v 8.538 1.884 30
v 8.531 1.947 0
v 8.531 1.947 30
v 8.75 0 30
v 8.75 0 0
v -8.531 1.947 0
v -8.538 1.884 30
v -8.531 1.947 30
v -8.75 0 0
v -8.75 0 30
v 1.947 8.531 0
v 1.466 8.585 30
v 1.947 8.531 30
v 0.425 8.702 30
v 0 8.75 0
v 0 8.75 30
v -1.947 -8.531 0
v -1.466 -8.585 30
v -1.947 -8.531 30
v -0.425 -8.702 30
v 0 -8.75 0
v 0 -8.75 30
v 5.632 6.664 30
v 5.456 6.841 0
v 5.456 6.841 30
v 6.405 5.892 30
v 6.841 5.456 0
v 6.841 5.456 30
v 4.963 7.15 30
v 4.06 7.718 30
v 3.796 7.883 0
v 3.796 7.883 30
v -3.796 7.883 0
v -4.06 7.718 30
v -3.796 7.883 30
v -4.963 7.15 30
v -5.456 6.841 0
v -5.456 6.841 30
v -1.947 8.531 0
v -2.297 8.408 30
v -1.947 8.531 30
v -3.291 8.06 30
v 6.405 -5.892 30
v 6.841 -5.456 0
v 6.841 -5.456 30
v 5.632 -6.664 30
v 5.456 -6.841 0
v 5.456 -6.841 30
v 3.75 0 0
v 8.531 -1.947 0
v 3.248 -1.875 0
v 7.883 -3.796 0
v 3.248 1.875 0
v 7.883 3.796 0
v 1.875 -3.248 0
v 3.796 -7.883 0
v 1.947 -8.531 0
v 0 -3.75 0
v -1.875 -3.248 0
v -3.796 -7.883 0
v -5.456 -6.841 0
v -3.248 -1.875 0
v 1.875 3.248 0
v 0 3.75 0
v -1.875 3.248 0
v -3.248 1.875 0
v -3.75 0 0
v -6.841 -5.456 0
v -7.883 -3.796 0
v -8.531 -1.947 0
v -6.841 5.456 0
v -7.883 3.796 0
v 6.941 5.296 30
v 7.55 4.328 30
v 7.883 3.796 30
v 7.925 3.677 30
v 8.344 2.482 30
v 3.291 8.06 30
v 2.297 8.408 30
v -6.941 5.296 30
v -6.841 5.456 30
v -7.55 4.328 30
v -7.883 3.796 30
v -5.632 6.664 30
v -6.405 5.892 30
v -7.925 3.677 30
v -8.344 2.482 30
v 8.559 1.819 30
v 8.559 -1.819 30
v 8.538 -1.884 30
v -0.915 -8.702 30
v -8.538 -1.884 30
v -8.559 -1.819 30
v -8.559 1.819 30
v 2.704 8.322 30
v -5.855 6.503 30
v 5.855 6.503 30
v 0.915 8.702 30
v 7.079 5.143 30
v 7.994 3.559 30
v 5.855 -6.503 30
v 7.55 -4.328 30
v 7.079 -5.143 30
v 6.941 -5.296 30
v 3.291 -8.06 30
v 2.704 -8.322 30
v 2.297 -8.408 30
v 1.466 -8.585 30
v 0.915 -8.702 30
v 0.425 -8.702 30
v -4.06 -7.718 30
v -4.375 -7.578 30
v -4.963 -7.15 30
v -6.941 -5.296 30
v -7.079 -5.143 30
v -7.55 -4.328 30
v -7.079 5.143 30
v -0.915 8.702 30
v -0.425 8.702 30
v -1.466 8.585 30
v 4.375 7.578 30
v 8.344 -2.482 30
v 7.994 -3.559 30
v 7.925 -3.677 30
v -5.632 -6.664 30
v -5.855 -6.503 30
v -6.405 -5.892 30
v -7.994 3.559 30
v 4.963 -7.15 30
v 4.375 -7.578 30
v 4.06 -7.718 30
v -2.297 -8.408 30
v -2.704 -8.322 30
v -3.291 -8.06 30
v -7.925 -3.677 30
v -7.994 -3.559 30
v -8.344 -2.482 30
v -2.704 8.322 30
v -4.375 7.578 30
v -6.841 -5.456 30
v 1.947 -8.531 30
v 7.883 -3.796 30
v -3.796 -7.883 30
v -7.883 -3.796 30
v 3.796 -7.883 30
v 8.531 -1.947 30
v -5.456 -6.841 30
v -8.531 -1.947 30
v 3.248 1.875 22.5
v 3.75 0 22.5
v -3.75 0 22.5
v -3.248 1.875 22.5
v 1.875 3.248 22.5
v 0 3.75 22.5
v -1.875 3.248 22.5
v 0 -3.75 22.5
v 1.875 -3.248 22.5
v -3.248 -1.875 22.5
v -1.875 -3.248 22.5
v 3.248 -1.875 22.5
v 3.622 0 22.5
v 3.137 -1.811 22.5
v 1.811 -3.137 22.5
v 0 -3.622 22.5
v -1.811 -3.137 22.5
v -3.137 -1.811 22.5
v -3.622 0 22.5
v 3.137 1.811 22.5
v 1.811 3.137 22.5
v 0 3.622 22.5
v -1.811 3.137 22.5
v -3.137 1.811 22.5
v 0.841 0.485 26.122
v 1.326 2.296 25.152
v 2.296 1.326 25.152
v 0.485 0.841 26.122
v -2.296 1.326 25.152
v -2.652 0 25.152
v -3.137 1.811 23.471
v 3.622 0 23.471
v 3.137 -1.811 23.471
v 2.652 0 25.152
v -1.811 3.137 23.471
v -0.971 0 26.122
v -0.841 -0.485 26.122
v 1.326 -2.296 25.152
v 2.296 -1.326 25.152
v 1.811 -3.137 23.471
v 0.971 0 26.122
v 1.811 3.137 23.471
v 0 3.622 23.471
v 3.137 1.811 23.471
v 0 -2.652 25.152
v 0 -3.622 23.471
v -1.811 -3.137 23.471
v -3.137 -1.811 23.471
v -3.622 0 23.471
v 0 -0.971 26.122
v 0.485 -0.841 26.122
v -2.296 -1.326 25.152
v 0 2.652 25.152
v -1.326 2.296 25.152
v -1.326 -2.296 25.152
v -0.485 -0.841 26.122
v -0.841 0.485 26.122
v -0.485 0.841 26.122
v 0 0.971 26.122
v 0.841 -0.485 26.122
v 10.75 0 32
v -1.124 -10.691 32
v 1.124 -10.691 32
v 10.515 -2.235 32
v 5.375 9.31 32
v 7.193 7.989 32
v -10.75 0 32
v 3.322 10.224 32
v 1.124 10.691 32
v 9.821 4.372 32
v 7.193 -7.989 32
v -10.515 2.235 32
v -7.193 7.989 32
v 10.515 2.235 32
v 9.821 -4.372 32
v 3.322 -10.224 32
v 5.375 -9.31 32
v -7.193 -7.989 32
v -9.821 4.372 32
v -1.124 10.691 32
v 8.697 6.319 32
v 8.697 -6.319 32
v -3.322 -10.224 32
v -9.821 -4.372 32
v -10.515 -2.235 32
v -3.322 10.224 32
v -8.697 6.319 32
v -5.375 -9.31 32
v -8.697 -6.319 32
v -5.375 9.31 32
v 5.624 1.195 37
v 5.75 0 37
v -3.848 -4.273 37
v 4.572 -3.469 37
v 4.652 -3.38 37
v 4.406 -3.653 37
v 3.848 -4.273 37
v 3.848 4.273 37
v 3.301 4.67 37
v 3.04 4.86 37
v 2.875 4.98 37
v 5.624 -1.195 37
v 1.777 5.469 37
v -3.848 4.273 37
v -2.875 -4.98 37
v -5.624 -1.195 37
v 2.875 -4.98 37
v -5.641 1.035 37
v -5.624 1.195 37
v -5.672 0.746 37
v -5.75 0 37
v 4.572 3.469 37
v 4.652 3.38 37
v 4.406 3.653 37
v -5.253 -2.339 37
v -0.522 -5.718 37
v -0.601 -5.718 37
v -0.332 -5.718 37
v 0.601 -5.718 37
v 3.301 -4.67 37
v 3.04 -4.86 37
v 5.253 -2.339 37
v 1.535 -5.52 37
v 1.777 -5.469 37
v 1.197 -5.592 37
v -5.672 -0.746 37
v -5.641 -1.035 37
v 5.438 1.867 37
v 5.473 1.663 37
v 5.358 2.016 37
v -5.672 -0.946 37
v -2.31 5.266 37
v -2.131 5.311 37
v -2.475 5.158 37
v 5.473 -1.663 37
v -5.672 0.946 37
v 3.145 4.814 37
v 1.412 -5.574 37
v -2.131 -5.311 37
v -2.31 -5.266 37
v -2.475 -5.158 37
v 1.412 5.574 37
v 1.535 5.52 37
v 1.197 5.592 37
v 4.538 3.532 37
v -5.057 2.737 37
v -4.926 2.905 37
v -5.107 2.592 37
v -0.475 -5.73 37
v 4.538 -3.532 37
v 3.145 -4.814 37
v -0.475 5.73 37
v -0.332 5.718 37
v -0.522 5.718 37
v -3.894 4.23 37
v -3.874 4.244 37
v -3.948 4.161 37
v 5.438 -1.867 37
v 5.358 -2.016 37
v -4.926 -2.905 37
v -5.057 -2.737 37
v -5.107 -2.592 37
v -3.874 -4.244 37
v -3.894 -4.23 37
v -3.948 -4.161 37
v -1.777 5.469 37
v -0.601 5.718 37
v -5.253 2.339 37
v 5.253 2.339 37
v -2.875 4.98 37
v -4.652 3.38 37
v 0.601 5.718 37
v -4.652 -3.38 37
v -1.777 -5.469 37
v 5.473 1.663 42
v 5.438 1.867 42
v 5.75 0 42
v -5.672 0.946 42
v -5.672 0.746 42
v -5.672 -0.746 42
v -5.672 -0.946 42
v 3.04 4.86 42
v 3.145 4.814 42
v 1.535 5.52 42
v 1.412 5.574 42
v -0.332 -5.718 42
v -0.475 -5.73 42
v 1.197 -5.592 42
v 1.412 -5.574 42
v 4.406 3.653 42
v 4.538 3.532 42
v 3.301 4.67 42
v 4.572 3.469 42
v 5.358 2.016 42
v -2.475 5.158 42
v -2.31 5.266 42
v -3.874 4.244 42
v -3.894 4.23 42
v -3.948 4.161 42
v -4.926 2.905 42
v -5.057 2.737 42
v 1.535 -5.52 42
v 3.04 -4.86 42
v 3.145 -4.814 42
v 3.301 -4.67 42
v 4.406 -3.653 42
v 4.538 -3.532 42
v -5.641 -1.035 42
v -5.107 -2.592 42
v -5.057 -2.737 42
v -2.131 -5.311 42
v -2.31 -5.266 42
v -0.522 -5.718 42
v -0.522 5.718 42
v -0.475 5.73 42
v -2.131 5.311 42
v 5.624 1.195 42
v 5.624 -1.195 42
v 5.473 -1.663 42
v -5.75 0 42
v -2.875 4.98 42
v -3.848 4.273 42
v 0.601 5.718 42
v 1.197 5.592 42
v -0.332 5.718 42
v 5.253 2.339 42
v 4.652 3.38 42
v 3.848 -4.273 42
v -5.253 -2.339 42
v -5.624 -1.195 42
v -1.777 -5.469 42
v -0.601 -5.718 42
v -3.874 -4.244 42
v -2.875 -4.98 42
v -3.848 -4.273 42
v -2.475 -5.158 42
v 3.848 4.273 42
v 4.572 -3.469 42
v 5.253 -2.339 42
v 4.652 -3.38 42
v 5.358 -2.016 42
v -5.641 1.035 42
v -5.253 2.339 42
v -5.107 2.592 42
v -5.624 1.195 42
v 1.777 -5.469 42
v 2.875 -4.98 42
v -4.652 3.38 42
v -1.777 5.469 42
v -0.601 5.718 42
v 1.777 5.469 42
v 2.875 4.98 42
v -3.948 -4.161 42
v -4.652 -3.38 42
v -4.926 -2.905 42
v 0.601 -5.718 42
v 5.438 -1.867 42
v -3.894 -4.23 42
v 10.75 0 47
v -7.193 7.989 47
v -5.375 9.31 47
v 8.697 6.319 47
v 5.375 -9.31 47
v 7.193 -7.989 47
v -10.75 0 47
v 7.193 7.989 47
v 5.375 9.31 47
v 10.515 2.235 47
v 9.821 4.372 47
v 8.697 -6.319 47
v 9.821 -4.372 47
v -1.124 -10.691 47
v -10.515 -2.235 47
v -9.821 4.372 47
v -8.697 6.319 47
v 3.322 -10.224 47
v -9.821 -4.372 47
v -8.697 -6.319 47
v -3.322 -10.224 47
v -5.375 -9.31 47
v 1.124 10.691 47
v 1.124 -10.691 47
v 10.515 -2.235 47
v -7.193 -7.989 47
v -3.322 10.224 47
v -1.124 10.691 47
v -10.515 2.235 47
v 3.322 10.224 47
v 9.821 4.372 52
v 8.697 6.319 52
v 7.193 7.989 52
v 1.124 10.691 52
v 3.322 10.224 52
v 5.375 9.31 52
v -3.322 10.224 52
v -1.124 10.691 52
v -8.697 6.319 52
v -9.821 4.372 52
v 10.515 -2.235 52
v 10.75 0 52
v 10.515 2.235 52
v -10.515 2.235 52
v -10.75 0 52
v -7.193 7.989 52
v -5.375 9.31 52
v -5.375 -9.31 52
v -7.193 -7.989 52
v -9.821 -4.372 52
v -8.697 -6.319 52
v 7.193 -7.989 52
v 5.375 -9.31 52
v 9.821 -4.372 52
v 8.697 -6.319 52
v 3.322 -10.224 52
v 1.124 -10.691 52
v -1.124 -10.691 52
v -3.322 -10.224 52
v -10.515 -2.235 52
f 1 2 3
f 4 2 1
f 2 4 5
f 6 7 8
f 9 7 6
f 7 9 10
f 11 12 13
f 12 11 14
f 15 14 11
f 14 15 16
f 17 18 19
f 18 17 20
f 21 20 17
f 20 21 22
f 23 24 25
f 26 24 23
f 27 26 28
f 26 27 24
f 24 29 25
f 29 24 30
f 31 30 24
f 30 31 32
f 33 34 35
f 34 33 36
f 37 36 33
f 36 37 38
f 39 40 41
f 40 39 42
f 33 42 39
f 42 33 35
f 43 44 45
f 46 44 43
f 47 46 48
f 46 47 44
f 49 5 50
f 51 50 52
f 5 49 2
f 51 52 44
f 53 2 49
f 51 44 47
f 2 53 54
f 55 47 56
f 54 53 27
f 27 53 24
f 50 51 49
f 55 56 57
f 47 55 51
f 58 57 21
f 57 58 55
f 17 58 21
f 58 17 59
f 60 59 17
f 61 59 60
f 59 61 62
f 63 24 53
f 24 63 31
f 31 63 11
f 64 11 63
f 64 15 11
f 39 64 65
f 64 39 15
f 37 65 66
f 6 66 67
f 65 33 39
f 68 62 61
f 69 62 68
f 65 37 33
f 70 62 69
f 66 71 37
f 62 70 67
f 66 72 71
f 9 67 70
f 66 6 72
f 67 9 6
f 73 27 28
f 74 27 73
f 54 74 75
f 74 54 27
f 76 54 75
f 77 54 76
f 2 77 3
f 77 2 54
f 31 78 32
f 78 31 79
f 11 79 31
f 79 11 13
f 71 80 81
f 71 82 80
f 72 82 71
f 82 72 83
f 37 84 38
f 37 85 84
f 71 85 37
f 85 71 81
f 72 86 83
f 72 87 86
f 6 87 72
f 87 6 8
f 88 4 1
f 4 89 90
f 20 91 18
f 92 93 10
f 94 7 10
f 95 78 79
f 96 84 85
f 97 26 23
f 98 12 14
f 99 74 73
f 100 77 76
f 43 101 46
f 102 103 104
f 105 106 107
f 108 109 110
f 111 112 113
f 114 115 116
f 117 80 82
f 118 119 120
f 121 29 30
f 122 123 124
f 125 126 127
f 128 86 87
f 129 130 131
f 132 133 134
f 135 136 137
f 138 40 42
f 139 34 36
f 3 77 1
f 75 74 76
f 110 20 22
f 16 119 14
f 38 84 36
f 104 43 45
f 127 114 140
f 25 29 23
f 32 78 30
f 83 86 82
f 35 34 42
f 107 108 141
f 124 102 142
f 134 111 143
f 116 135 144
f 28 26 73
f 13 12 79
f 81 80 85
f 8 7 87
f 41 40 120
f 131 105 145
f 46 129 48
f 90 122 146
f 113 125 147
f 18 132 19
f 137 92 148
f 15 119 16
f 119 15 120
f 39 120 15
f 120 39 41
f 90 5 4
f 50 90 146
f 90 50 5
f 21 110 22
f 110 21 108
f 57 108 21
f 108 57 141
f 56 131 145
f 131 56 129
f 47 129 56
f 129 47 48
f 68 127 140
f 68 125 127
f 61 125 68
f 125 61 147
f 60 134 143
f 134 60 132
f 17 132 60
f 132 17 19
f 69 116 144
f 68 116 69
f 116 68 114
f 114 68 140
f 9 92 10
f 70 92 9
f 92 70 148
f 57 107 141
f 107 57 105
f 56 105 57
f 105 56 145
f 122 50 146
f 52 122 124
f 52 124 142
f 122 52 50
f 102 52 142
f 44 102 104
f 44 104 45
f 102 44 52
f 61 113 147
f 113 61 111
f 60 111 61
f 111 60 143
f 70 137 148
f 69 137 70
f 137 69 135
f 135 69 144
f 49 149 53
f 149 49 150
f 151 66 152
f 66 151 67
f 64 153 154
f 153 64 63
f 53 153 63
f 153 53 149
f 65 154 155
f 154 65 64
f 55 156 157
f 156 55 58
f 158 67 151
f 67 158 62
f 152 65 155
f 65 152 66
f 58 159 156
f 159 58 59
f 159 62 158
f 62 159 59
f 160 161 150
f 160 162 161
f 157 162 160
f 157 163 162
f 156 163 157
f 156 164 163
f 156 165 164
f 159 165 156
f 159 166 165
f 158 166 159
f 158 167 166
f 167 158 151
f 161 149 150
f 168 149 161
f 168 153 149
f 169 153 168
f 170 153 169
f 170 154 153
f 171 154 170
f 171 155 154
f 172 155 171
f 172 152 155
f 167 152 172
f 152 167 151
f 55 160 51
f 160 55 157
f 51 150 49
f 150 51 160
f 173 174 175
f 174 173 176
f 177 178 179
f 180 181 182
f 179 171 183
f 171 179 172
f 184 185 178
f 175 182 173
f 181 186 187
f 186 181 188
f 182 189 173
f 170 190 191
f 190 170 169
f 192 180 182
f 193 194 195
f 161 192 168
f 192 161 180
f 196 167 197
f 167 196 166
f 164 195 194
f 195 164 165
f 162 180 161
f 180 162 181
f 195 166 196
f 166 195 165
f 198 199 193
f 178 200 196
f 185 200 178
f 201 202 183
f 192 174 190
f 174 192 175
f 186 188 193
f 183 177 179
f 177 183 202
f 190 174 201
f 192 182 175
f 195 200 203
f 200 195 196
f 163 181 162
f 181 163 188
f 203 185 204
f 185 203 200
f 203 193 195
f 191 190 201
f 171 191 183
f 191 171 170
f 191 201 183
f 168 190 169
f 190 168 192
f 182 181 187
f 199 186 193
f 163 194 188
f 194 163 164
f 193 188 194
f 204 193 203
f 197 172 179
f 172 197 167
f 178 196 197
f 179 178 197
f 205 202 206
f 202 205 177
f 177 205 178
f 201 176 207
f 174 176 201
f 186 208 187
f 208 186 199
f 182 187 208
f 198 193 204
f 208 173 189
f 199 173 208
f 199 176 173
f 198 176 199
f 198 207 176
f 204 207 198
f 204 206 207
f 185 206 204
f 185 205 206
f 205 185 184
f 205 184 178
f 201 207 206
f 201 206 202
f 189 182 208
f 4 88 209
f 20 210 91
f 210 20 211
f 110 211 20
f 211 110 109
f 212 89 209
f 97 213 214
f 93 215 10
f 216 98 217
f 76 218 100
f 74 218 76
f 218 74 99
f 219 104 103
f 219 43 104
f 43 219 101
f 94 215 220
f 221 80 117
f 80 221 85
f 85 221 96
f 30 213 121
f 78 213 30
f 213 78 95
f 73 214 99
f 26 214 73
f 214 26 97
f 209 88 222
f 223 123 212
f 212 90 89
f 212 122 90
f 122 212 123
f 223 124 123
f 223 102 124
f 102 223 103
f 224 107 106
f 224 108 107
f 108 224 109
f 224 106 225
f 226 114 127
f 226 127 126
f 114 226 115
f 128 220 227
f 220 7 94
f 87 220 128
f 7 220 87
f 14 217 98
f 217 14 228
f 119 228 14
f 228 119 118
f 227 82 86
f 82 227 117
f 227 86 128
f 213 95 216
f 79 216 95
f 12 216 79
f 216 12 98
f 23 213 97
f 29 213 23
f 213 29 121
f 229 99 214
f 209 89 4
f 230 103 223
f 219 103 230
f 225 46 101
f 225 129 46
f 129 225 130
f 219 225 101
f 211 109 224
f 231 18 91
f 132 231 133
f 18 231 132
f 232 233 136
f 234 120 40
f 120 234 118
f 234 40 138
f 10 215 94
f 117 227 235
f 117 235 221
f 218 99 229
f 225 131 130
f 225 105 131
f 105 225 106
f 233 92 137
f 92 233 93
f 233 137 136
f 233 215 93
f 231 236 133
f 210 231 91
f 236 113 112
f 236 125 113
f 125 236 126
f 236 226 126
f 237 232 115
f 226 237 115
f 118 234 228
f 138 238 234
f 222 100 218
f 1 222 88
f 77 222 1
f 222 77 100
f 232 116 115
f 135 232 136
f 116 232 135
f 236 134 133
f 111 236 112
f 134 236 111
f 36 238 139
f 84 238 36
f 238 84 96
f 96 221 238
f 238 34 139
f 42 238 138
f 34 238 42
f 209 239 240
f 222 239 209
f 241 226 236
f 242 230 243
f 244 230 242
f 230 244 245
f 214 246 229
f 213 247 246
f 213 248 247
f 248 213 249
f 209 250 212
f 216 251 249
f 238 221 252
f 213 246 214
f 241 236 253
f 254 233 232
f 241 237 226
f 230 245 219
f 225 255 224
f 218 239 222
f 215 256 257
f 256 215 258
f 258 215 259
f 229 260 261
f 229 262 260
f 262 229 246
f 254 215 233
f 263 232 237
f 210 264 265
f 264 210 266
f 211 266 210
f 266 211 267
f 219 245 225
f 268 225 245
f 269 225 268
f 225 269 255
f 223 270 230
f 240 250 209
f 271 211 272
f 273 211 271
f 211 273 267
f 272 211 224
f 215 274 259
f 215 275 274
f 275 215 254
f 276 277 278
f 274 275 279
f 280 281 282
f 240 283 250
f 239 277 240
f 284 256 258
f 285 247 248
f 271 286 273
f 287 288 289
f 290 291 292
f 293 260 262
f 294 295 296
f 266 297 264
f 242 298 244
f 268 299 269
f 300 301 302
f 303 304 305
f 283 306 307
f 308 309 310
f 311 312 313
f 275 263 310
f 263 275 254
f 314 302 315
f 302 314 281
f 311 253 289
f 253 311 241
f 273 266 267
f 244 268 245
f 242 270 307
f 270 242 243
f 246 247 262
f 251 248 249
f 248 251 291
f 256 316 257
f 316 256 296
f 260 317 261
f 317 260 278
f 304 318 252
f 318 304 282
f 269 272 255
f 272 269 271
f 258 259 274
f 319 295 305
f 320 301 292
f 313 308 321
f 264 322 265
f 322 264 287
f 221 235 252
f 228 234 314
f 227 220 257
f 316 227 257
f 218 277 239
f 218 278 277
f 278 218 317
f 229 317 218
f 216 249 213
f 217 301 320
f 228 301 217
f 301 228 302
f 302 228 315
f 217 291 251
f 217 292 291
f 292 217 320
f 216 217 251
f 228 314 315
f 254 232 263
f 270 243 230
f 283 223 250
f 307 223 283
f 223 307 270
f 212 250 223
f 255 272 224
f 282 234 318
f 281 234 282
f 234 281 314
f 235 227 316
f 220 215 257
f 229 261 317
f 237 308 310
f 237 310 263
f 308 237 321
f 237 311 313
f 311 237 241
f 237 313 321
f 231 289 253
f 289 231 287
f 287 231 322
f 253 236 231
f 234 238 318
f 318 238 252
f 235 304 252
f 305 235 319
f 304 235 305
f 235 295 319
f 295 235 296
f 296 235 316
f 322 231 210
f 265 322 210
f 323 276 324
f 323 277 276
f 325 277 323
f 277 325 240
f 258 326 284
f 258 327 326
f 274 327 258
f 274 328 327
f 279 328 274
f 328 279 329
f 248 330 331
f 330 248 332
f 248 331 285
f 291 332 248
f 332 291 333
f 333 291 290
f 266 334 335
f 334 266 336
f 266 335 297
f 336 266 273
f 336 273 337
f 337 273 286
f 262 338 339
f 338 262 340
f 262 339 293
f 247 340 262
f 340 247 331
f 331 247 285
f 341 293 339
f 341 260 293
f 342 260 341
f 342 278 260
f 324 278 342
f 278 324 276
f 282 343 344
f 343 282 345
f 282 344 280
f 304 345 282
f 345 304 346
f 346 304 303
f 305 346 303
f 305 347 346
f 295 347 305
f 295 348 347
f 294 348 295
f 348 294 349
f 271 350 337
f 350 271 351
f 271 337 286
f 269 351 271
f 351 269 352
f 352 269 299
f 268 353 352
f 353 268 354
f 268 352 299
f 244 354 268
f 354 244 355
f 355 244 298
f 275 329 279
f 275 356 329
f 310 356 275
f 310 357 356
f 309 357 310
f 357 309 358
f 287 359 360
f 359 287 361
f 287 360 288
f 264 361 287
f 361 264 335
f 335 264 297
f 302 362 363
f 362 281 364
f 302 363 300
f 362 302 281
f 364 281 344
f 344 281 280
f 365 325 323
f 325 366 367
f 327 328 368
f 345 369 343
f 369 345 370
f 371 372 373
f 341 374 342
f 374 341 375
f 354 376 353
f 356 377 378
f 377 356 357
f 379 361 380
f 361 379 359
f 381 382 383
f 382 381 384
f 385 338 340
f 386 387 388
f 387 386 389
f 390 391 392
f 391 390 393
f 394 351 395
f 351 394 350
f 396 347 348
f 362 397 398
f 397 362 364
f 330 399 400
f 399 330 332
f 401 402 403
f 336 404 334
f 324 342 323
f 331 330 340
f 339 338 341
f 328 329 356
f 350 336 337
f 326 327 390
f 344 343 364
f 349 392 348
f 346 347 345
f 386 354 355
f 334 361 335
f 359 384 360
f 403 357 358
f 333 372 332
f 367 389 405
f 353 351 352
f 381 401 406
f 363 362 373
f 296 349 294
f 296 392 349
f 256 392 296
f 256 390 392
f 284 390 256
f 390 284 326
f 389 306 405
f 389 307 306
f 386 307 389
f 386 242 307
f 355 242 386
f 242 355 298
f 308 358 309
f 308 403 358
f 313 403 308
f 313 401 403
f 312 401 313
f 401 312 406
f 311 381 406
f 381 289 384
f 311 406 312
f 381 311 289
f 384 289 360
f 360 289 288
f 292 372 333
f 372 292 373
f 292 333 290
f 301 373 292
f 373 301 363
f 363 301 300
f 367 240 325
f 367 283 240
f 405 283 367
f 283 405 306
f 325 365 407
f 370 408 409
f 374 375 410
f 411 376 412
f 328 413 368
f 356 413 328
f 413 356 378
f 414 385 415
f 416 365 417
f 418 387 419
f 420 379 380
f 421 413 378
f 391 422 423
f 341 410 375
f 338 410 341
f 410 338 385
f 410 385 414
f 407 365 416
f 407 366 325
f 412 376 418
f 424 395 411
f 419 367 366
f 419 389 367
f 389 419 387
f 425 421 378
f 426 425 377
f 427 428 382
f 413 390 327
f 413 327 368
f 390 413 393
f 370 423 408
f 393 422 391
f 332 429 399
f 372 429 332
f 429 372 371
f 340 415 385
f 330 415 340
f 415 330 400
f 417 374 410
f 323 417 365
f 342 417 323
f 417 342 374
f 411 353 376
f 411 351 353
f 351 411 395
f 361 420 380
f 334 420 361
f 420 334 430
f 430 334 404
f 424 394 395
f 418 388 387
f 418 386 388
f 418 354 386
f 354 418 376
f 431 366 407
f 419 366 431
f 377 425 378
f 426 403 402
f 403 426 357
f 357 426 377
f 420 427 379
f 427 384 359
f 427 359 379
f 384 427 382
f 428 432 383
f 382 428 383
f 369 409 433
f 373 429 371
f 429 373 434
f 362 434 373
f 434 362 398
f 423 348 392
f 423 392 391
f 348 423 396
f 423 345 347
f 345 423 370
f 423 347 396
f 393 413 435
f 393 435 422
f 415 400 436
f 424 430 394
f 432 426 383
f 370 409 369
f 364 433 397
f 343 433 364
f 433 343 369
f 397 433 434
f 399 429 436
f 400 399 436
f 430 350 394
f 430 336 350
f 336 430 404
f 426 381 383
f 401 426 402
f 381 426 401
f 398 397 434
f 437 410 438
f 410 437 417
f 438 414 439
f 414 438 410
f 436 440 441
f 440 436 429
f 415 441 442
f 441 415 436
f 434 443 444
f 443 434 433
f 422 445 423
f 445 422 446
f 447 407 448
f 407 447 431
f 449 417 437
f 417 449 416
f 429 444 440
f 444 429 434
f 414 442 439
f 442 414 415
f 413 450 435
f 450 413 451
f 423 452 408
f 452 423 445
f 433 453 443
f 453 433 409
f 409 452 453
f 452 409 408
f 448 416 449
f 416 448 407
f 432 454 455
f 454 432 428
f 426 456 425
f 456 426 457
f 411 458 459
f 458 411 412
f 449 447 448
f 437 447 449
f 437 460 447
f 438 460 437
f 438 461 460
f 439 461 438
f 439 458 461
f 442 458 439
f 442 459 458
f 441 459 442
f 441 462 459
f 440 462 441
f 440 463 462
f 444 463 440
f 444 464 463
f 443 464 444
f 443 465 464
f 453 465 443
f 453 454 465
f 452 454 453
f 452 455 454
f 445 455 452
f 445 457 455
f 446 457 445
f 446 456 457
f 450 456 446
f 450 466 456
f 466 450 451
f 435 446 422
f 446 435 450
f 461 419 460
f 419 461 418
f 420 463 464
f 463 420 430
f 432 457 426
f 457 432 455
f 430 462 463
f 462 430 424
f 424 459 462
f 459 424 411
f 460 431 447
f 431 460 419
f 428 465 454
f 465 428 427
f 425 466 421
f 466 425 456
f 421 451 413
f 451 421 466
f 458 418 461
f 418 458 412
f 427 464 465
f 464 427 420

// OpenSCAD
union() {
	union() {
		difference() {
			difference() {
				cylinder(h = 30, r = 8.7500000000);
				cylinder(h = 22.5000000000, r = 3.7500000000);
			}
			translate(v = [0, 0, 22.5000000000]) {
				sphere(r = 3.7500000000);
			}
		}
		translate(v = [0, 0, 30]) {
			cylinder(h = 2, r1 = 8.7500000000, r2 = 10.7500000000);
		}
	}
	translate(v = [0, 0, 32]) {
		union() {
			union() {
				union() {
					cylinder(h = 5, r1 = 10.7500000000, r2 = 5.7500000000);
					translate(v = [0, 0, 5]) {
						cylinder(h = 5, r = 5.7500000000);
					}
				}
				translate(v = [0, 0, 10]) {
					cylinder(h = 5, r1 = 5.7500000000, r2 = 10.7500000000);
				}
			}
			translate(v = [0, 0, 15]) {
				cylinder(h = 5, r = 10.7500000000);
			}
		}
	}
}
/***********************************************
*********      SolidPython code:      **********
************************************************
 

import solid as s
import solid.utils as u

insert_rad = 8.75
insert_hole_rad = 3.75
insert_height = 30
insert_hole_down = insert_hole_rad * 2
insert_hole_height = insert_height - insert_hole_down
lip_rad = insert_rad + 2
lip_height = 2
top_height_step = 5
top_notch_rad = lip_rad - 5

insert = (
    s.cylinder(r=insert_rad, h=insert_height) -
    s.cylinder(r=insert_hole_rad, h=insert_hole_height) - 
    u.up(insert_hole_height)(s.sphere(r=insert_hole_rad))
)

flange = u.up(insert_height)(
    s.cylinder(r1=insert_rad, r2=lip_rad, h=lip_height)
)

top = u.up(insert_height + lip_height)(
    s.cylinder(r1=lip_rad, r2=top_notch_rad, h=top_height_step) +
    u.up(top_height_step)(
        s.cylinder(r=top_notch_rad, h=top_height_step)
    ) +
    u.up(top_height_step * 2)(
        s.cylinder(r1=top_notch_rad, r2=lip_rad, h=top_height_step)
    ) +
    u.up(top_height_step * 3)(
        s.cylinder(r=lip_rad, h=top_height_step)
    )
)

final = insert + flange + top
s.scad_render_to_file(final, __file__.replace('.py', '.scad'))
 
 
************************************************/
